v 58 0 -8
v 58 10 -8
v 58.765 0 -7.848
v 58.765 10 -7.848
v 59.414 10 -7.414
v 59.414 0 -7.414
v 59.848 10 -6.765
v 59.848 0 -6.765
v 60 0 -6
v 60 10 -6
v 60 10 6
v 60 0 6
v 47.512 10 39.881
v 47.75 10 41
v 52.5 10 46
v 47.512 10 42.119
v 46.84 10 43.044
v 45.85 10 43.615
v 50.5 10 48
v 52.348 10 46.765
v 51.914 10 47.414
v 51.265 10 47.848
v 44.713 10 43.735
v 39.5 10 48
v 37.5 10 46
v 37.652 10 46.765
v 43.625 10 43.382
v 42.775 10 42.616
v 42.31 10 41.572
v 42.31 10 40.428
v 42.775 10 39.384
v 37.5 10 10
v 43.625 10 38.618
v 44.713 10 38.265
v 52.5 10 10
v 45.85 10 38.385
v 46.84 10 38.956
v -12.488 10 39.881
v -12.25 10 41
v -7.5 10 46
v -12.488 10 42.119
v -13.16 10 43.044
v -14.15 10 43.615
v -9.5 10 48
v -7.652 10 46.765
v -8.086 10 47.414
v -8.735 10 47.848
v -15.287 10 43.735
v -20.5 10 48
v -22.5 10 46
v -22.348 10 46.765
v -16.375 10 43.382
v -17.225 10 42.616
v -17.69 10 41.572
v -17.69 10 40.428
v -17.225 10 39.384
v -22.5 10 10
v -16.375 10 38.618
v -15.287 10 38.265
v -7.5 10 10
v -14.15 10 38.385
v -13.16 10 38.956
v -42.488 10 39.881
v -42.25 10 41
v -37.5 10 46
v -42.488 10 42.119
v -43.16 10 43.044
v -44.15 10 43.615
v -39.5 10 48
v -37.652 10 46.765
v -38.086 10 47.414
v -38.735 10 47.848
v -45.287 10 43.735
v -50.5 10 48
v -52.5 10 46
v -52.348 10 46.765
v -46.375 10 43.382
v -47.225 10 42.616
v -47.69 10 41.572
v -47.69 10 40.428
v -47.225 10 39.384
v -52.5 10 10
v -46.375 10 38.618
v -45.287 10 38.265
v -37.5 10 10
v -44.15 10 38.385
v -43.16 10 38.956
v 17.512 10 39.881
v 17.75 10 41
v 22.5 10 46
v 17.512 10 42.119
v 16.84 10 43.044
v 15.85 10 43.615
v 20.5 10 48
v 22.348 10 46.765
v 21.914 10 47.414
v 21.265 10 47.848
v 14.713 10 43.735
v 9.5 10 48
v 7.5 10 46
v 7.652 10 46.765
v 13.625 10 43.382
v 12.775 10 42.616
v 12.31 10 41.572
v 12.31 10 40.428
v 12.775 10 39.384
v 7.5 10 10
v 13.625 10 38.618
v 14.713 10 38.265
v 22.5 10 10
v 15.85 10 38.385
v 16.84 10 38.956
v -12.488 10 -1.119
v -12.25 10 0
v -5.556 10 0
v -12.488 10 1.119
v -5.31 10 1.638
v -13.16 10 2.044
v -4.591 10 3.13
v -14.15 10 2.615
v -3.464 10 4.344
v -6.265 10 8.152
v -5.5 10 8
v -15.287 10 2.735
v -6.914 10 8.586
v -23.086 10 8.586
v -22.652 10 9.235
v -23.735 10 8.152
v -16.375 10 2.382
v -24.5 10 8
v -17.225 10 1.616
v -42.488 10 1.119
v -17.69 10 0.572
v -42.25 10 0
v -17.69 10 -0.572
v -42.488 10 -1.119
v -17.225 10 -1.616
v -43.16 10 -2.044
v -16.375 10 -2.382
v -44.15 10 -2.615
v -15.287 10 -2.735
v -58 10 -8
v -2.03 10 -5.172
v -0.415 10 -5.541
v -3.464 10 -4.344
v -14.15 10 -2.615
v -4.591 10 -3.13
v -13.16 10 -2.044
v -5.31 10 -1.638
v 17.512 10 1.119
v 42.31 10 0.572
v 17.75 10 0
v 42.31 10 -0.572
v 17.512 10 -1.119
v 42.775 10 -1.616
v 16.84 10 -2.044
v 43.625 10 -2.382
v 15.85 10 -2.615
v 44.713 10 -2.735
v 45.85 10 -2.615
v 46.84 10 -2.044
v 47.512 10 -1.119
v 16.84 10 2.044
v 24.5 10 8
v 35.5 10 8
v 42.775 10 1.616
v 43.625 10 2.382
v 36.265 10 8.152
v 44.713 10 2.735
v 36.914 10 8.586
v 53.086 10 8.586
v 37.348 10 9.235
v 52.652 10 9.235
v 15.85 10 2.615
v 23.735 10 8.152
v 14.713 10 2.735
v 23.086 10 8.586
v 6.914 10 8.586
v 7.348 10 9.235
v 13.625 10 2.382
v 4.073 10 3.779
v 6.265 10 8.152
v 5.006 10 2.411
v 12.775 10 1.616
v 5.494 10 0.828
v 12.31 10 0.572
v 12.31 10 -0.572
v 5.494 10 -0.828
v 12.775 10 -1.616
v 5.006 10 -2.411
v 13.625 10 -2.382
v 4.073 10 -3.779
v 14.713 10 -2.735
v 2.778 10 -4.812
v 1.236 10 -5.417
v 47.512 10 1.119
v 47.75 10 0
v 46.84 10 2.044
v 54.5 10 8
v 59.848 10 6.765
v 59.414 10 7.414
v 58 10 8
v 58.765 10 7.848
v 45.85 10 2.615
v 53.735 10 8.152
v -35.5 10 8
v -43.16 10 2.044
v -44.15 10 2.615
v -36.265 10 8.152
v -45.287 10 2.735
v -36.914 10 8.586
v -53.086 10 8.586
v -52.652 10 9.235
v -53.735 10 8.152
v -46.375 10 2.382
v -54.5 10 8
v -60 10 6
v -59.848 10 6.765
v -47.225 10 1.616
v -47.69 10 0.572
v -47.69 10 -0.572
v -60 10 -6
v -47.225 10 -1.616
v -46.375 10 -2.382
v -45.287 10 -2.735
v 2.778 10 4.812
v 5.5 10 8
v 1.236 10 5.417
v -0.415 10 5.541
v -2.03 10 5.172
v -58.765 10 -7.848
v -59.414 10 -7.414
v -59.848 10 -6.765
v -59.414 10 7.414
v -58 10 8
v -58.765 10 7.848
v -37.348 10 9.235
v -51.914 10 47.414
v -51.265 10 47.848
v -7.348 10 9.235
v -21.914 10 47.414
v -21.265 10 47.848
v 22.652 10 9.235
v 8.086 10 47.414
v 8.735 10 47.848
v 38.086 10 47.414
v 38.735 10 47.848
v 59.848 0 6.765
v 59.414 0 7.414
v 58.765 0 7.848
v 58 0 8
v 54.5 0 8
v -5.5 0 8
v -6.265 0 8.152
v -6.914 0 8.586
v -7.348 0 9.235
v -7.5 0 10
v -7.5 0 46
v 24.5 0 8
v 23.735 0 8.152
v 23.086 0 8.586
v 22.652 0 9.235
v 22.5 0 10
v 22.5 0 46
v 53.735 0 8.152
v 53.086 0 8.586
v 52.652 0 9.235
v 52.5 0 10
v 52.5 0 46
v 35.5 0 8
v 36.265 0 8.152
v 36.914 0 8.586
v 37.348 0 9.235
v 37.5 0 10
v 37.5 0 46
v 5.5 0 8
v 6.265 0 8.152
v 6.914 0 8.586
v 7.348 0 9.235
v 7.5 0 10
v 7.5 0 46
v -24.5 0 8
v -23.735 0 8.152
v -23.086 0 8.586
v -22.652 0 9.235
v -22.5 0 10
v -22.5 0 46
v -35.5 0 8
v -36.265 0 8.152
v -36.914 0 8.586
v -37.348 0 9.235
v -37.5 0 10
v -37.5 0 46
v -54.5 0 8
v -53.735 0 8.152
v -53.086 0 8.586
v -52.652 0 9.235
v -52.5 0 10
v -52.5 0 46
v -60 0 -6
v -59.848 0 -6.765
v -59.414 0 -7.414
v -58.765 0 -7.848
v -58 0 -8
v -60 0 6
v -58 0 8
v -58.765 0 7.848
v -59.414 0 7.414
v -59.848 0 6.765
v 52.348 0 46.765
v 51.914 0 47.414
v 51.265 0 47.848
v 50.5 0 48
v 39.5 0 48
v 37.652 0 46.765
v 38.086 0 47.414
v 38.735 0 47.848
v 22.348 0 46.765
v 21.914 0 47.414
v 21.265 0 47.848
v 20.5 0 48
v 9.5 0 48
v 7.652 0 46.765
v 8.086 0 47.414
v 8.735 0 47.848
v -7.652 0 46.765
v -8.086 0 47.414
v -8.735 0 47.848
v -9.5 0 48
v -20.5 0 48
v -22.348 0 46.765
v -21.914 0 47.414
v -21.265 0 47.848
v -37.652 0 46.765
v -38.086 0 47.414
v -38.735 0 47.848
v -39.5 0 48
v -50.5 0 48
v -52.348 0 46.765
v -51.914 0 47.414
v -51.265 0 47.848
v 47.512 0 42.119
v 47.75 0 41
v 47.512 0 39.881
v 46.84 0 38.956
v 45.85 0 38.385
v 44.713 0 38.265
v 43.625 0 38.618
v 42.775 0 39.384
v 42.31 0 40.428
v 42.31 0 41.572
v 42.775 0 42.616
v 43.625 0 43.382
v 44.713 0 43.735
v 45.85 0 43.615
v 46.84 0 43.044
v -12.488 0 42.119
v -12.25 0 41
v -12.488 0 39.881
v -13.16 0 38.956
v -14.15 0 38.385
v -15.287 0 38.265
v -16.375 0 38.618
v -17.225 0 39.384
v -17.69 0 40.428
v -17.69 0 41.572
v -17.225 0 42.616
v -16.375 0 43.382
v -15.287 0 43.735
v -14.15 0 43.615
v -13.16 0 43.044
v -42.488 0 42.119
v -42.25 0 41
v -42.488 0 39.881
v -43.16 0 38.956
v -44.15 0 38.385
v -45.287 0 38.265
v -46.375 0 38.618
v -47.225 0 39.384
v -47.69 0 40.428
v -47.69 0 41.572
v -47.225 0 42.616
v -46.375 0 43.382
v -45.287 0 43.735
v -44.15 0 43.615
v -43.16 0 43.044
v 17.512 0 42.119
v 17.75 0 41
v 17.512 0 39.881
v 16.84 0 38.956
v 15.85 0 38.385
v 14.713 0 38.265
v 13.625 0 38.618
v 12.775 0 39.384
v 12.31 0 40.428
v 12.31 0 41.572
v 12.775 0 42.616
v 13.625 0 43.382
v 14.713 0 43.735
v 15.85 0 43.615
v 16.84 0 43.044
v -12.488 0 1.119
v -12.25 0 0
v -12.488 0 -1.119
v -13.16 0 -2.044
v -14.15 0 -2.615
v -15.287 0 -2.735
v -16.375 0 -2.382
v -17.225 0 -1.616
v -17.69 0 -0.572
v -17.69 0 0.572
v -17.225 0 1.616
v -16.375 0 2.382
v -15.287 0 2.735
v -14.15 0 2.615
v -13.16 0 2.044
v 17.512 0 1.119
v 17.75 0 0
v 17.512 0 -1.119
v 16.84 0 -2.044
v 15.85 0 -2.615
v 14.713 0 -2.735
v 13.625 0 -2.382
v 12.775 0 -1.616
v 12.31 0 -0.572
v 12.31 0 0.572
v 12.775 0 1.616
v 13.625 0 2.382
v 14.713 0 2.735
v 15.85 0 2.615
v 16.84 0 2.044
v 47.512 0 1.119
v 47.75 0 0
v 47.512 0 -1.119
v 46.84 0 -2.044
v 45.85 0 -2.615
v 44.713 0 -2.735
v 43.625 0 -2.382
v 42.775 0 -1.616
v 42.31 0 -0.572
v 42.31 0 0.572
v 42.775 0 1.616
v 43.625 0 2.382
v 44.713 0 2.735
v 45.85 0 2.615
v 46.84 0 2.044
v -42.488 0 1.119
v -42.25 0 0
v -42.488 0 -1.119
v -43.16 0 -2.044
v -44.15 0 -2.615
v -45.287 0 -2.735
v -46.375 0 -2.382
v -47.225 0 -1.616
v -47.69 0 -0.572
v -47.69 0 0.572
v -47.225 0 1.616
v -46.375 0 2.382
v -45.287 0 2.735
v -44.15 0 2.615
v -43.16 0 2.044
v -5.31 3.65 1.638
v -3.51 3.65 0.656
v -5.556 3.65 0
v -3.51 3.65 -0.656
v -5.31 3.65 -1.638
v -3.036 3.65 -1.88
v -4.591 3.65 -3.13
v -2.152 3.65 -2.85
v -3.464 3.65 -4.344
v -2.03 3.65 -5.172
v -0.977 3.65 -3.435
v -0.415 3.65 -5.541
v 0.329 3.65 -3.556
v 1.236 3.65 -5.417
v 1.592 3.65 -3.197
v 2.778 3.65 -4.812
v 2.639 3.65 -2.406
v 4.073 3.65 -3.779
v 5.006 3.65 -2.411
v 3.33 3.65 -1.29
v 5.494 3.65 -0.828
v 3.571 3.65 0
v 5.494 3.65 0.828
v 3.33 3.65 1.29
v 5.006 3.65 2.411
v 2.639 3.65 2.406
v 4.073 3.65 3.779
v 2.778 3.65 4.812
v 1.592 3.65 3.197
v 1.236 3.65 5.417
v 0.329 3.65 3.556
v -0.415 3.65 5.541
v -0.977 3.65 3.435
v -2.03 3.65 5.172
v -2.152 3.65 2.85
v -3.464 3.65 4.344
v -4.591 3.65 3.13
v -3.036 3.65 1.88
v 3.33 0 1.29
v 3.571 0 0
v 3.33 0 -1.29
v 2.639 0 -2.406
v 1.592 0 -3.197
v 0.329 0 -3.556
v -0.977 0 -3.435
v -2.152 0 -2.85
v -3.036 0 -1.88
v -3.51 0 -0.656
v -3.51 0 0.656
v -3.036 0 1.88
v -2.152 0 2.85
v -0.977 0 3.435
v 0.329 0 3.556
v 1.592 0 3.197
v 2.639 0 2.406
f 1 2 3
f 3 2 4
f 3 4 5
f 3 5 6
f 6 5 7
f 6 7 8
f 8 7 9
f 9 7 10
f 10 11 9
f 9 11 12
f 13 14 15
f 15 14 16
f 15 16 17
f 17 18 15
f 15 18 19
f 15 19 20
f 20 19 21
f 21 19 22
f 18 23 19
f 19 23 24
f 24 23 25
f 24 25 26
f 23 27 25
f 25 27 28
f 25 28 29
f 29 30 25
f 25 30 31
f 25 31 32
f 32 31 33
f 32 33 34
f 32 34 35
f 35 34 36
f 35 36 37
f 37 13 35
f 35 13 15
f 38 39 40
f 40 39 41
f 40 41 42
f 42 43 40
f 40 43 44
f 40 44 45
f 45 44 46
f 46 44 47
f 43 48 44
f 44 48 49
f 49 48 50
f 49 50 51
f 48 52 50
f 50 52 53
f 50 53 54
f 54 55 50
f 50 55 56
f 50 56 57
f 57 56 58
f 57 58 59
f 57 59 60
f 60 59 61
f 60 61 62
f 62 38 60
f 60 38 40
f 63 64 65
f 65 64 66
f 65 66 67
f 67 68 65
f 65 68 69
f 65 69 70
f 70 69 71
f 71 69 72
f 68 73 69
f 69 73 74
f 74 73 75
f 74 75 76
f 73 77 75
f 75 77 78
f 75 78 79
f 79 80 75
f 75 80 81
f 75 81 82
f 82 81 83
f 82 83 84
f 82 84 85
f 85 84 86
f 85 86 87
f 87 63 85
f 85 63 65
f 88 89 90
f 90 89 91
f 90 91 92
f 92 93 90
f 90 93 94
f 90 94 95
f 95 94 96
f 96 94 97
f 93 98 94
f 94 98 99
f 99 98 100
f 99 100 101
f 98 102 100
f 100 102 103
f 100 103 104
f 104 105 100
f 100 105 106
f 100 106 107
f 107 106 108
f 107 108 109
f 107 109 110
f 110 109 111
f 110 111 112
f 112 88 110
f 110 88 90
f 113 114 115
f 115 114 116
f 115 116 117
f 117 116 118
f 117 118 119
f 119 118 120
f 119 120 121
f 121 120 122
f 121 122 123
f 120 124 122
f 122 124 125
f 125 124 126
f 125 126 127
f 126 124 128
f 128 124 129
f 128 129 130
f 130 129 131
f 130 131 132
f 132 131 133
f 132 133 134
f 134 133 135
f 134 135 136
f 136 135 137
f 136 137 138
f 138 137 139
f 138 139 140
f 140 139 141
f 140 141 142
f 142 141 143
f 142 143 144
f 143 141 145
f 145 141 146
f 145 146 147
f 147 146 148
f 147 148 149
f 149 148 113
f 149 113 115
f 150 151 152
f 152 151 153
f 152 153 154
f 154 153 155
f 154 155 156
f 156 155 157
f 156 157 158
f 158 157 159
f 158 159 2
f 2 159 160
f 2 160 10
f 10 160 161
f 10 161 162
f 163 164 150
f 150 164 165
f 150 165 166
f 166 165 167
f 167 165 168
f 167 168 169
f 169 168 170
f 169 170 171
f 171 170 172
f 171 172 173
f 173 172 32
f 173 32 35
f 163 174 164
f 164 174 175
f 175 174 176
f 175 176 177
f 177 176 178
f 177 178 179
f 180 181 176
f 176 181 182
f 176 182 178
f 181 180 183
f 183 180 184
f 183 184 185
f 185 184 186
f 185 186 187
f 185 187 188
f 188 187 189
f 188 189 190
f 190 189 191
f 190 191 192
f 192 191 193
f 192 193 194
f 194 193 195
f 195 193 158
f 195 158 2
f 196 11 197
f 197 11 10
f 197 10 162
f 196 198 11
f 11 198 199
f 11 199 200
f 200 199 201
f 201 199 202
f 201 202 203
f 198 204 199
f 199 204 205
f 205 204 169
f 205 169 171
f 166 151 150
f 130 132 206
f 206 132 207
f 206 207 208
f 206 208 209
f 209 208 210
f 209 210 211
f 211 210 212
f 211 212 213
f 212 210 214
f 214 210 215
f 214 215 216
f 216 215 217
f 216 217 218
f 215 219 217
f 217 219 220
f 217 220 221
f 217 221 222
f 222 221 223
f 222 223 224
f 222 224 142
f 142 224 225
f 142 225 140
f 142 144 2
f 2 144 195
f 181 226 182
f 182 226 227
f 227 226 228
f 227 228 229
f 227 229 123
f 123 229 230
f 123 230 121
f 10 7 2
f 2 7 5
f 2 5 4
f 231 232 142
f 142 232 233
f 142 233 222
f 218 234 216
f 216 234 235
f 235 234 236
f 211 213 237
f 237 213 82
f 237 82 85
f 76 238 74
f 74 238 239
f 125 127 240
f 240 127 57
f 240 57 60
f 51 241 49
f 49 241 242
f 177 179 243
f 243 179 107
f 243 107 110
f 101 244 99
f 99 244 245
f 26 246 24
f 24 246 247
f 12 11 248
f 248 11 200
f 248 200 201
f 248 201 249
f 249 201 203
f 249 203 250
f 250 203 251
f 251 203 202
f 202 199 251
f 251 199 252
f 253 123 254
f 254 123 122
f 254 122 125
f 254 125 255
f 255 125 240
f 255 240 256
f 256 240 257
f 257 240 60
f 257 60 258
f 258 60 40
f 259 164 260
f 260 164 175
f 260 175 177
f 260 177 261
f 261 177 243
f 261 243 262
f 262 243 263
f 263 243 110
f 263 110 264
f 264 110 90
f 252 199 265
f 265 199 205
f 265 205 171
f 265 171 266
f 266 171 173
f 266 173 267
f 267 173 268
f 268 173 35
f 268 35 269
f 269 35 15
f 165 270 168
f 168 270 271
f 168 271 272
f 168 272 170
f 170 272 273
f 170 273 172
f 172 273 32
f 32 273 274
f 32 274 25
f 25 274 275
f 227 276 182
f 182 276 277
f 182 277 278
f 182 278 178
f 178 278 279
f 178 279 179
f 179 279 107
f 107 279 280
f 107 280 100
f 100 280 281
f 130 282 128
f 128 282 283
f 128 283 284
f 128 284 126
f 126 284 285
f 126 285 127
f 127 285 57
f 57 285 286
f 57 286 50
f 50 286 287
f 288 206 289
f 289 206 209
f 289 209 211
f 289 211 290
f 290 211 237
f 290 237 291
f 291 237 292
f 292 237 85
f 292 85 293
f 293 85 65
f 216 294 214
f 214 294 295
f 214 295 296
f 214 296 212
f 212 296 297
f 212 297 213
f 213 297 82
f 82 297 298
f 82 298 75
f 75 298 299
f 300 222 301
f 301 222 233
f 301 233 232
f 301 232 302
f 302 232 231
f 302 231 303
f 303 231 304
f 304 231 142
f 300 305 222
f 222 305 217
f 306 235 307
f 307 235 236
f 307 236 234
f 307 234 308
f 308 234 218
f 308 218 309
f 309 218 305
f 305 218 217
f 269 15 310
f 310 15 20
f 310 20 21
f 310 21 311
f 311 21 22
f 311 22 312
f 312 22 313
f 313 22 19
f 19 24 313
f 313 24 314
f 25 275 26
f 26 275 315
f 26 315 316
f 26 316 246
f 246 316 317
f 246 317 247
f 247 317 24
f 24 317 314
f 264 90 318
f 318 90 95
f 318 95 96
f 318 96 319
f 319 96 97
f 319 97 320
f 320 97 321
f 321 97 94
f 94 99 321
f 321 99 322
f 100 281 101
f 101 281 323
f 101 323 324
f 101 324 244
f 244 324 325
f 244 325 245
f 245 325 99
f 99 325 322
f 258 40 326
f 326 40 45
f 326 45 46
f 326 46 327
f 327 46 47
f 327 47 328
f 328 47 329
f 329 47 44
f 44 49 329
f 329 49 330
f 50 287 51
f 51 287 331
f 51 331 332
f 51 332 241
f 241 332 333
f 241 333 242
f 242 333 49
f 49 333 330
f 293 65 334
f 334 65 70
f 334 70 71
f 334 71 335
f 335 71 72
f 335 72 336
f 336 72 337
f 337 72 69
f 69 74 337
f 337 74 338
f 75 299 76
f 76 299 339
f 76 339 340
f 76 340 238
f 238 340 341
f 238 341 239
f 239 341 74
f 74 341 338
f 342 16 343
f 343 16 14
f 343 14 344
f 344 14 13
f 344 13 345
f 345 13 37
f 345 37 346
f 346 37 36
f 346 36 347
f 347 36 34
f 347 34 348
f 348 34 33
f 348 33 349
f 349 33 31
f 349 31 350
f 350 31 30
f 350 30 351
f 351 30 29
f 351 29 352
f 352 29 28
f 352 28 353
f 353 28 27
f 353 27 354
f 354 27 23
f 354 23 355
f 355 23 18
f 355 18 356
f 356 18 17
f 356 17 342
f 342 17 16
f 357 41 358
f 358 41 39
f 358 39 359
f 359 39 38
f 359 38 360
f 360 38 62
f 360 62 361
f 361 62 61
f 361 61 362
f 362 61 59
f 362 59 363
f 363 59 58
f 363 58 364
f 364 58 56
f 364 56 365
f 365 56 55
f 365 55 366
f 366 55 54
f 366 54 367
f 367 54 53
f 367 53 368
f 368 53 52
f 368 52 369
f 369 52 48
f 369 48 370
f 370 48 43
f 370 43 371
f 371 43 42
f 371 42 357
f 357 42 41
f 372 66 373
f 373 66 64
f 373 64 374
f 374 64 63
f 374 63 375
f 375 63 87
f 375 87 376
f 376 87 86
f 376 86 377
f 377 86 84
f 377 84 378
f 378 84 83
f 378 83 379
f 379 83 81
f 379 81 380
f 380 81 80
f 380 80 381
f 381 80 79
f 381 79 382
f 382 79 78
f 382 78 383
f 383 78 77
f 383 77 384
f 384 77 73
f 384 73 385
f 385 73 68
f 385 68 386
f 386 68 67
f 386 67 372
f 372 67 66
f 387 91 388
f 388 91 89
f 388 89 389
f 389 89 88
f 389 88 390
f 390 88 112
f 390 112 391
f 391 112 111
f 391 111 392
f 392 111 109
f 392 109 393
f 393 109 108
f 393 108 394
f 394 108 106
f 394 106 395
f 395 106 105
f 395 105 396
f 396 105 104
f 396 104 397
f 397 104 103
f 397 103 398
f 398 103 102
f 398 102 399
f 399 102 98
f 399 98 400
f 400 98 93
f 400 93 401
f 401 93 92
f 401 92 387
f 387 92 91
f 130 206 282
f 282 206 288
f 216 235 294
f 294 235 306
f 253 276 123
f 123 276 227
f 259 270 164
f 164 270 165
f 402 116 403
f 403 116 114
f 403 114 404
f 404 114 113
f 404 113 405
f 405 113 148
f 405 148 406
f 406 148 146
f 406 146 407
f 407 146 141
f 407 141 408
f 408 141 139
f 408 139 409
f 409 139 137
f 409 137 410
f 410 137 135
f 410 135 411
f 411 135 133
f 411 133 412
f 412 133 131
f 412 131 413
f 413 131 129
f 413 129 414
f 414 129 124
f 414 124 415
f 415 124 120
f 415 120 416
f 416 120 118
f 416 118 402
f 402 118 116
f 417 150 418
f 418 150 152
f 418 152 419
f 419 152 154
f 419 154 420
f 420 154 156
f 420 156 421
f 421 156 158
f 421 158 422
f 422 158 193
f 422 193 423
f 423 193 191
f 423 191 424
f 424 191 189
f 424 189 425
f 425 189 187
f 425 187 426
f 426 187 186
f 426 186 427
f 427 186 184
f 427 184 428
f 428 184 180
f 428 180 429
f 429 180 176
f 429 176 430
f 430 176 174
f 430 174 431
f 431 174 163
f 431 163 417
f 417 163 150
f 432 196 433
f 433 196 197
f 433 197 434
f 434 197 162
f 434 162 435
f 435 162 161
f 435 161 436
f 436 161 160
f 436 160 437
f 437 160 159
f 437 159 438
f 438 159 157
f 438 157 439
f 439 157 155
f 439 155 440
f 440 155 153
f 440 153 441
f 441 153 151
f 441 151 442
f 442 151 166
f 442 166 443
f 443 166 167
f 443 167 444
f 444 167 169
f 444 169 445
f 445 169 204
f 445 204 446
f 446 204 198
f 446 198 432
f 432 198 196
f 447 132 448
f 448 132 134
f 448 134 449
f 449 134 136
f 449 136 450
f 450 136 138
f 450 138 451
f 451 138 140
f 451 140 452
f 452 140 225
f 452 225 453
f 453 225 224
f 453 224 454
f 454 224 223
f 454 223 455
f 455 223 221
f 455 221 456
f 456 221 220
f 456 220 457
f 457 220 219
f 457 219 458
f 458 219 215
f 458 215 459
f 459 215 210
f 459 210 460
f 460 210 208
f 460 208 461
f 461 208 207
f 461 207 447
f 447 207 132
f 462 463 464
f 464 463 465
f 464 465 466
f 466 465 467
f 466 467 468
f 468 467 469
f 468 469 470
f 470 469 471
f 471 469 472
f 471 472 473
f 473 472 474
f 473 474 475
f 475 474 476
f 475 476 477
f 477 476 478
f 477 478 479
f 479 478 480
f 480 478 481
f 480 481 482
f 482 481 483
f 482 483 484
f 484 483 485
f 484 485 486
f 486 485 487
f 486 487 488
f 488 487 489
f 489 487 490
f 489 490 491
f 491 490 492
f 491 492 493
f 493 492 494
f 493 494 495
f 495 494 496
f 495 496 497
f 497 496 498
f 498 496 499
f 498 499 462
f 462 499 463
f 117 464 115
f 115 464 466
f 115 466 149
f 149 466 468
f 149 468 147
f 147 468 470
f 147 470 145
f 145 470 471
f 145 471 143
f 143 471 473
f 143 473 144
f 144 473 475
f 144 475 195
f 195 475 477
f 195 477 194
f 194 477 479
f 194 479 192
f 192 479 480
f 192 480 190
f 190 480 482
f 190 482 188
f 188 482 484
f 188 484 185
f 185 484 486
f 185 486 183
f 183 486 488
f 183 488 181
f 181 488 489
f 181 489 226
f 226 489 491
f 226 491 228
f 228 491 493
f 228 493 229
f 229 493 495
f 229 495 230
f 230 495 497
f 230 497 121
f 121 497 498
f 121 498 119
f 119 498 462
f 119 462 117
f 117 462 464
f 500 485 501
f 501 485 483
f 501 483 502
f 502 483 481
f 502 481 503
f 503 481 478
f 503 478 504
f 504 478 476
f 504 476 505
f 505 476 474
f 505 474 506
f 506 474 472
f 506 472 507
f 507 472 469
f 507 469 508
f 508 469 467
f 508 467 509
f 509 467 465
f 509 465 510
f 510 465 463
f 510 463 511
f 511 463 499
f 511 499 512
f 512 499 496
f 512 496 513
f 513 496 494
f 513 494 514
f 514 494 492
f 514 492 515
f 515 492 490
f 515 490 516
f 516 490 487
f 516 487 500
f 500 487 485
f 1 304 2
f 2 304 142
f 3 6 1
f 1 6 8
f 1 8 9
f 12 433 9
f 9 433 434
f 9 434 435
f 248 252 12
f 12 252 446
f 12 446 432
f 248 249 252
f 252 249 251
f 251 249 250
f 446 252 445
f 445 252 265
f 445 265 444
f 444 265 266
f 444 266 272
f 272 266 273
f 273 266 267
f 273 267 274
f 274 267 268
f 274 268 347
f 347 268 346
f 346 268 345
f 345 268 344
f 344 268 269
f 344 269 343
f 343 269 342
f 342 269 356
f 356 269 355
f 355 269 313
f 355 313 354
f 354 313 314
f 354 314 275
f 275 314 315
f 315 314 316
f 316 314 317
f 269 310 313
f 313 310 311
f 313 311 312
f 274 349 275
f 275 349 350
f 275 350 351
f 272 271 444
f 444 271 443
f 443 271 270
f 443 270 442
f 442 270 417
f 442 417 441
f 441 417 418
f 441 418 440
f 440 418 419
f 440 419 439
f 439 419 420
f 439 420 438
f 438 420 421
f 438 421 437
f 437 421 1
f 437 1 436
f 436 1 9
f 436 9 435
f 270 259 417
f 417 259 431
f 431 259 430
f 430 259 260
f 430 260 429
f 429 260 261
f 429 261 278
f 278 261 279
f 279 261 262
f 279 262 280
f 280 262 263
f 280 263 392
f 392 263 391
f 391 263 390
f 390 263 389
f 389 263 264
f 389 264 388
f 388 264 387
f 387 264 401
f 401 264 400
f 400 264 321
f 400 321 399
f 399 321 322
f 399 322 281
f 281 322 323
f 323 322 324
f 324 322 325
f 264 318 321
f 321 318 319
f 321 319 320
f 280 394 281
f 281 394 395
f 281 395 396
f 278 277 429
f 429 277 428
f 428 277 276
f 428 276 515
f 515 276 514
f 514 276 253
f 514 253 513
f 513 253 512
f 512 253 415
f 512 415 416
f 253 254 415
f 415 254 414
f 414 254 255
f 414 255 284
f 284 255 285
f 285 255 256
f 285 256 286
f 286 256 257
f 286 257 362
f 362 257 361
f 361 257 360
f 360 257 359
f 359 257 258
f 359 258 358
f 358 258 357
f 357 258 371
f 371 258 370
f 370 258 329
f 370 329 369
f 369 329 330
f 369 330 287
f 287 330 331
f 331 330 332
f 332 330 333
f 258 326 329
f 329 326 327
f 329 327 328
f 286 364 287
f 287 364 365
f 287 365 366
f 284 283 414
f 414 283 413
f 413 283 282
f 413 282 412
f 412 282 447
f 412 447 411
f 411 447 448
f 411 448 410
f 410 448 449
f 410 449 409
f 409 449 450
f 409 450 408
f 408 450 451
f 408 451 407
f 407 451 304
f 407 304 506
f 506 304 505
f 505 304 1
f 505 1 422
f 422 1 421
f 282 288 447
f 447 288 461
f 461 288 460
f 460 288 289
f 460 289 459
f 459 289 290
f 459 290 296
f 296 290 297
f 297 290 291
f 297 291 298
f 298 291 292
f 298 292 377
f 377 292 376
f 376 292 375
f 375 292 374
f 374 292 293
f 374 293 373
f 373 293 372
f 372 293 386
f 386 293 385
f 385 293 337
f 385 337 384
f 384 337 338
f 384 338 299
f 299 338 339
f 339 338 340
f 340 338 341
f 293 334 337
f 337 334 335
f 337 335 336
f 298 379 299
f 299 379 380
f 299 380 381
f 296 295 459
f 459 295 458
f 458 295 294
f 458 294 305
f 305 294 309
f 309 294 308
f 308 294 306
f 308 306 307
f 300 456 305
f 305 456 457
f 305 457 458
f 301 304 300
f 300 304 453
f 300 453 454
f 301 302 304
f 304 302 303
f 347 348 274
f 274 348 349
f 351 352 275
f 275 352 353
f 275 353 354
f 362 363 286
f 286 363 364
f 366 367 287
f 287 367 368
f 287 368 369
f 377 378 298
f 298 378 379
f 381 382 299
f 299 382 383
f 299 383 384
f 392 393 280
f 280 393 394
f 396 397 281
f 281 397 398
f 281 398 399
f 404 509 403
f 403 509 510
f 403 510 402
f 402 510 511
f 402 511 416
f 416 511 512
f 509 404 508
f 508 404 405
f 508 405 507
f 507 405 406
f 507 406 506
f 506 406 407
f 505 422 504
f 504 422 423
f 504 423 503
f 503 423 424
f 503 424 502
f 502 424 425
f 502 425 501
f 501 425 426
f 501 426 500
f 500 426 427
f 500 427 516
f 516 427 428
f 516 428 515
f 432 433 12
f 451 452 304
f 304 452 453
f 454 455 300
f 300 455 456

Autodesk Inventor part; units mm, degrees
ref_plane "YZ Plane" through (0, 0, 0) normal (1, 0, 0) x (0, 1, 0)
ref_plane "XZ Plane" through (0, 0, 0) normal (0, 1, 0) x (-1, 0, 0)
ref_plane "XY Plane" through (0, 0, 0) normal (0, 0, 1) x (1, 0, 0)
sketch "Sketch1" plane through (0, 0, 0) normal (0, 1, 0) x (-1, 0, 0)
  line L0 (60, 8) -> (-60, 8)
  line L1 (-60, 8) -> (-60, -8)
  line L2 (-60, -8) -> (60, -8)
  line L3 (60, -8) -> (60, 8)
  line L4 (60, 8) -> (-60, -8) construction
  line L5 (-60, 8) -> (60, -8) construction
  point P0 (0, 0)
  dimension "d0" = 16
  dimension "d1" = 120
extrude "Extrusion1" add sketch "Sketch1" along normal blind 10
hole "Hole1" at (0, 10, 0) direction (0, -1, 0) diameter 7.142 depth 25.4 counterbore diameter 11.113 counterbore depth 6.35 clearance for "Socket Head Cap Screw" size "1/4" standard "Ansi Unified Screw Threads"
sketch "Sketch2" plane through (0, 10, 0) normal (0, 1, 0) x (1, 0, 0)
  circle A0 centre (15, 0) radius 2.75
  circle A1 centre (45, 0) radius 2.75
  circle A2 centre (-15, 0) radius 2.75
  circle A3 centre (-45, 0) radius 2.75
  point P0 (0, 0)
  dimension "d15" = 5.5
  dimension "d16" = 15
  dimension "d17" = 30
  dimension "d18" = 5.5
  dimension "d19" = 15
  dimension "d20" = 5.5
  dimension "d21" = 30
  dimension "d22" = 5.5
extrude "Extrusion2" cut sketch "Sketch2" against normal up to next
sketch "Sketch6" plane through (-60, 0, 8) normal (0, 0, 1) x (1, 0, 0)
  line L0 (120, 10) -> (0, 10) projected
  line L1 (0, 0) -> (120, 0) projected
  line L2 (7.5, 10) -> (22.5, 10)
  line L3 (22.5, 10) -> (22.5, 0)
  line L4 (22.5, 0) -> (7.5, 0)
  line L5 (7.5, 0) -> (7.5, 10)
  line L6 (0, 0) -> (0, 10) projected
  line L7 (0, 10) -> (120, 10) projected
  line L8 (37.5, 10) -> (52.5, 10)
  line L9 (52.5, 10) -> (52.5, 0)
  line L10 (52.5, 0) -> (37.5, 0)
  line L11 (37.5, 0) -> (37.5, 10)
  line L12 (67.5, 10) -> (82.5, 10)
  line L13 (82.5, 10) -> (82.5, 0)
  line L14 (82.5, 0) -> (67.5, 0)
  line L15 (67.5, 0) -> (67.5, 10)
  line L16 (97.5, 10) -> (112.5, 10)
  line L17 (112.5, 10) -> (112.5, 0)
  line L18 (112.5, 0) -> (97.5, 0)
  line L19 (97.5, 0) -> (97.5, 10)
  line L20 (127.5, 10) -> (142.5, 10)
  line L21 (142.5, 10) -> (142.5, 0)
  line L22 (142.5, 0) -> (127.5, 0)
  line L23 (127.5, 0) -> (127.5, 10)
  point P0 (60, 0)
  point P1 (150, 10)
  point P2 (150, 0)
  dimension "d33" = 15
  dimension "d34" = 7.5
  dimension "d35" = 15
  dimension "d36" = 15
  dimension "d37" = 15
  dimension "d38" = 15
  dimension "d39" = 15
  dimension "d40" = 15
  dimension "d41" = 15
  dimension "d42" = 15
extrude "Extrusion5" add sketch "Sketch6" along normal blind 40 contours L17 L1 L19 L0 | L13 L1 L15 L0 | L9 L1 L11 L0 | L3 L1 L5 L0
sketch "Sketch7" plane through (0, 10, 0) normal (0, 1, 0) x (1, 0, 0)
  circle A0 centre (-45, -41) radius 2.75
  circle A1 centre (-45, 0) radius 2.75 projected
  line L0 (-52.5, -8) -> (-52.5, -48) projected
  circle A2 centre (-15, -41) radius 2.75
  circle A3 centre (15, -41) radius 2.75
  circle A4 centre (45, -41) radius 2.75
  circle A5 centre (75, -41) radius 2.75
  point P0 (0, 0)
  dimension "d45" = 5.5
  dimension "d46" = 41
  dimension "d47" = 7.5
  dimension "d48" = 5.5
  dimension "d49" = 5.5
  dimension "d50" = 5.5
  dimension "d51" = 5.5
extrude "Extrusion6" cut sketch "Sketch7" against normal up to next contours A0 | A2 | A3 | A4 | A5
fillet "Fillet1" radius 2 20 edges at (-52.5, 5, 48) (-37.5, 5, 48) (-22.5, 5, 48) (-7.5, 5, 48) (7.5, 5, 48) (22.5, 5, 48) (37.5, 5, 48) (52.5, 5, 48) (-60, 5, 8) (-60, 5, -8) (-52.5, 5, 8) (-37.5, 5, 8) (-22.5, 5, 8) (7.5, 5, 8) (37.5, 5, 8) (52.5, 5, 8) (22.5, 5, 8) (-7.5, 5, 8) (60, 5, 8) (60, 5, -8)
properties part number "FlowmeterMountThorX4"
